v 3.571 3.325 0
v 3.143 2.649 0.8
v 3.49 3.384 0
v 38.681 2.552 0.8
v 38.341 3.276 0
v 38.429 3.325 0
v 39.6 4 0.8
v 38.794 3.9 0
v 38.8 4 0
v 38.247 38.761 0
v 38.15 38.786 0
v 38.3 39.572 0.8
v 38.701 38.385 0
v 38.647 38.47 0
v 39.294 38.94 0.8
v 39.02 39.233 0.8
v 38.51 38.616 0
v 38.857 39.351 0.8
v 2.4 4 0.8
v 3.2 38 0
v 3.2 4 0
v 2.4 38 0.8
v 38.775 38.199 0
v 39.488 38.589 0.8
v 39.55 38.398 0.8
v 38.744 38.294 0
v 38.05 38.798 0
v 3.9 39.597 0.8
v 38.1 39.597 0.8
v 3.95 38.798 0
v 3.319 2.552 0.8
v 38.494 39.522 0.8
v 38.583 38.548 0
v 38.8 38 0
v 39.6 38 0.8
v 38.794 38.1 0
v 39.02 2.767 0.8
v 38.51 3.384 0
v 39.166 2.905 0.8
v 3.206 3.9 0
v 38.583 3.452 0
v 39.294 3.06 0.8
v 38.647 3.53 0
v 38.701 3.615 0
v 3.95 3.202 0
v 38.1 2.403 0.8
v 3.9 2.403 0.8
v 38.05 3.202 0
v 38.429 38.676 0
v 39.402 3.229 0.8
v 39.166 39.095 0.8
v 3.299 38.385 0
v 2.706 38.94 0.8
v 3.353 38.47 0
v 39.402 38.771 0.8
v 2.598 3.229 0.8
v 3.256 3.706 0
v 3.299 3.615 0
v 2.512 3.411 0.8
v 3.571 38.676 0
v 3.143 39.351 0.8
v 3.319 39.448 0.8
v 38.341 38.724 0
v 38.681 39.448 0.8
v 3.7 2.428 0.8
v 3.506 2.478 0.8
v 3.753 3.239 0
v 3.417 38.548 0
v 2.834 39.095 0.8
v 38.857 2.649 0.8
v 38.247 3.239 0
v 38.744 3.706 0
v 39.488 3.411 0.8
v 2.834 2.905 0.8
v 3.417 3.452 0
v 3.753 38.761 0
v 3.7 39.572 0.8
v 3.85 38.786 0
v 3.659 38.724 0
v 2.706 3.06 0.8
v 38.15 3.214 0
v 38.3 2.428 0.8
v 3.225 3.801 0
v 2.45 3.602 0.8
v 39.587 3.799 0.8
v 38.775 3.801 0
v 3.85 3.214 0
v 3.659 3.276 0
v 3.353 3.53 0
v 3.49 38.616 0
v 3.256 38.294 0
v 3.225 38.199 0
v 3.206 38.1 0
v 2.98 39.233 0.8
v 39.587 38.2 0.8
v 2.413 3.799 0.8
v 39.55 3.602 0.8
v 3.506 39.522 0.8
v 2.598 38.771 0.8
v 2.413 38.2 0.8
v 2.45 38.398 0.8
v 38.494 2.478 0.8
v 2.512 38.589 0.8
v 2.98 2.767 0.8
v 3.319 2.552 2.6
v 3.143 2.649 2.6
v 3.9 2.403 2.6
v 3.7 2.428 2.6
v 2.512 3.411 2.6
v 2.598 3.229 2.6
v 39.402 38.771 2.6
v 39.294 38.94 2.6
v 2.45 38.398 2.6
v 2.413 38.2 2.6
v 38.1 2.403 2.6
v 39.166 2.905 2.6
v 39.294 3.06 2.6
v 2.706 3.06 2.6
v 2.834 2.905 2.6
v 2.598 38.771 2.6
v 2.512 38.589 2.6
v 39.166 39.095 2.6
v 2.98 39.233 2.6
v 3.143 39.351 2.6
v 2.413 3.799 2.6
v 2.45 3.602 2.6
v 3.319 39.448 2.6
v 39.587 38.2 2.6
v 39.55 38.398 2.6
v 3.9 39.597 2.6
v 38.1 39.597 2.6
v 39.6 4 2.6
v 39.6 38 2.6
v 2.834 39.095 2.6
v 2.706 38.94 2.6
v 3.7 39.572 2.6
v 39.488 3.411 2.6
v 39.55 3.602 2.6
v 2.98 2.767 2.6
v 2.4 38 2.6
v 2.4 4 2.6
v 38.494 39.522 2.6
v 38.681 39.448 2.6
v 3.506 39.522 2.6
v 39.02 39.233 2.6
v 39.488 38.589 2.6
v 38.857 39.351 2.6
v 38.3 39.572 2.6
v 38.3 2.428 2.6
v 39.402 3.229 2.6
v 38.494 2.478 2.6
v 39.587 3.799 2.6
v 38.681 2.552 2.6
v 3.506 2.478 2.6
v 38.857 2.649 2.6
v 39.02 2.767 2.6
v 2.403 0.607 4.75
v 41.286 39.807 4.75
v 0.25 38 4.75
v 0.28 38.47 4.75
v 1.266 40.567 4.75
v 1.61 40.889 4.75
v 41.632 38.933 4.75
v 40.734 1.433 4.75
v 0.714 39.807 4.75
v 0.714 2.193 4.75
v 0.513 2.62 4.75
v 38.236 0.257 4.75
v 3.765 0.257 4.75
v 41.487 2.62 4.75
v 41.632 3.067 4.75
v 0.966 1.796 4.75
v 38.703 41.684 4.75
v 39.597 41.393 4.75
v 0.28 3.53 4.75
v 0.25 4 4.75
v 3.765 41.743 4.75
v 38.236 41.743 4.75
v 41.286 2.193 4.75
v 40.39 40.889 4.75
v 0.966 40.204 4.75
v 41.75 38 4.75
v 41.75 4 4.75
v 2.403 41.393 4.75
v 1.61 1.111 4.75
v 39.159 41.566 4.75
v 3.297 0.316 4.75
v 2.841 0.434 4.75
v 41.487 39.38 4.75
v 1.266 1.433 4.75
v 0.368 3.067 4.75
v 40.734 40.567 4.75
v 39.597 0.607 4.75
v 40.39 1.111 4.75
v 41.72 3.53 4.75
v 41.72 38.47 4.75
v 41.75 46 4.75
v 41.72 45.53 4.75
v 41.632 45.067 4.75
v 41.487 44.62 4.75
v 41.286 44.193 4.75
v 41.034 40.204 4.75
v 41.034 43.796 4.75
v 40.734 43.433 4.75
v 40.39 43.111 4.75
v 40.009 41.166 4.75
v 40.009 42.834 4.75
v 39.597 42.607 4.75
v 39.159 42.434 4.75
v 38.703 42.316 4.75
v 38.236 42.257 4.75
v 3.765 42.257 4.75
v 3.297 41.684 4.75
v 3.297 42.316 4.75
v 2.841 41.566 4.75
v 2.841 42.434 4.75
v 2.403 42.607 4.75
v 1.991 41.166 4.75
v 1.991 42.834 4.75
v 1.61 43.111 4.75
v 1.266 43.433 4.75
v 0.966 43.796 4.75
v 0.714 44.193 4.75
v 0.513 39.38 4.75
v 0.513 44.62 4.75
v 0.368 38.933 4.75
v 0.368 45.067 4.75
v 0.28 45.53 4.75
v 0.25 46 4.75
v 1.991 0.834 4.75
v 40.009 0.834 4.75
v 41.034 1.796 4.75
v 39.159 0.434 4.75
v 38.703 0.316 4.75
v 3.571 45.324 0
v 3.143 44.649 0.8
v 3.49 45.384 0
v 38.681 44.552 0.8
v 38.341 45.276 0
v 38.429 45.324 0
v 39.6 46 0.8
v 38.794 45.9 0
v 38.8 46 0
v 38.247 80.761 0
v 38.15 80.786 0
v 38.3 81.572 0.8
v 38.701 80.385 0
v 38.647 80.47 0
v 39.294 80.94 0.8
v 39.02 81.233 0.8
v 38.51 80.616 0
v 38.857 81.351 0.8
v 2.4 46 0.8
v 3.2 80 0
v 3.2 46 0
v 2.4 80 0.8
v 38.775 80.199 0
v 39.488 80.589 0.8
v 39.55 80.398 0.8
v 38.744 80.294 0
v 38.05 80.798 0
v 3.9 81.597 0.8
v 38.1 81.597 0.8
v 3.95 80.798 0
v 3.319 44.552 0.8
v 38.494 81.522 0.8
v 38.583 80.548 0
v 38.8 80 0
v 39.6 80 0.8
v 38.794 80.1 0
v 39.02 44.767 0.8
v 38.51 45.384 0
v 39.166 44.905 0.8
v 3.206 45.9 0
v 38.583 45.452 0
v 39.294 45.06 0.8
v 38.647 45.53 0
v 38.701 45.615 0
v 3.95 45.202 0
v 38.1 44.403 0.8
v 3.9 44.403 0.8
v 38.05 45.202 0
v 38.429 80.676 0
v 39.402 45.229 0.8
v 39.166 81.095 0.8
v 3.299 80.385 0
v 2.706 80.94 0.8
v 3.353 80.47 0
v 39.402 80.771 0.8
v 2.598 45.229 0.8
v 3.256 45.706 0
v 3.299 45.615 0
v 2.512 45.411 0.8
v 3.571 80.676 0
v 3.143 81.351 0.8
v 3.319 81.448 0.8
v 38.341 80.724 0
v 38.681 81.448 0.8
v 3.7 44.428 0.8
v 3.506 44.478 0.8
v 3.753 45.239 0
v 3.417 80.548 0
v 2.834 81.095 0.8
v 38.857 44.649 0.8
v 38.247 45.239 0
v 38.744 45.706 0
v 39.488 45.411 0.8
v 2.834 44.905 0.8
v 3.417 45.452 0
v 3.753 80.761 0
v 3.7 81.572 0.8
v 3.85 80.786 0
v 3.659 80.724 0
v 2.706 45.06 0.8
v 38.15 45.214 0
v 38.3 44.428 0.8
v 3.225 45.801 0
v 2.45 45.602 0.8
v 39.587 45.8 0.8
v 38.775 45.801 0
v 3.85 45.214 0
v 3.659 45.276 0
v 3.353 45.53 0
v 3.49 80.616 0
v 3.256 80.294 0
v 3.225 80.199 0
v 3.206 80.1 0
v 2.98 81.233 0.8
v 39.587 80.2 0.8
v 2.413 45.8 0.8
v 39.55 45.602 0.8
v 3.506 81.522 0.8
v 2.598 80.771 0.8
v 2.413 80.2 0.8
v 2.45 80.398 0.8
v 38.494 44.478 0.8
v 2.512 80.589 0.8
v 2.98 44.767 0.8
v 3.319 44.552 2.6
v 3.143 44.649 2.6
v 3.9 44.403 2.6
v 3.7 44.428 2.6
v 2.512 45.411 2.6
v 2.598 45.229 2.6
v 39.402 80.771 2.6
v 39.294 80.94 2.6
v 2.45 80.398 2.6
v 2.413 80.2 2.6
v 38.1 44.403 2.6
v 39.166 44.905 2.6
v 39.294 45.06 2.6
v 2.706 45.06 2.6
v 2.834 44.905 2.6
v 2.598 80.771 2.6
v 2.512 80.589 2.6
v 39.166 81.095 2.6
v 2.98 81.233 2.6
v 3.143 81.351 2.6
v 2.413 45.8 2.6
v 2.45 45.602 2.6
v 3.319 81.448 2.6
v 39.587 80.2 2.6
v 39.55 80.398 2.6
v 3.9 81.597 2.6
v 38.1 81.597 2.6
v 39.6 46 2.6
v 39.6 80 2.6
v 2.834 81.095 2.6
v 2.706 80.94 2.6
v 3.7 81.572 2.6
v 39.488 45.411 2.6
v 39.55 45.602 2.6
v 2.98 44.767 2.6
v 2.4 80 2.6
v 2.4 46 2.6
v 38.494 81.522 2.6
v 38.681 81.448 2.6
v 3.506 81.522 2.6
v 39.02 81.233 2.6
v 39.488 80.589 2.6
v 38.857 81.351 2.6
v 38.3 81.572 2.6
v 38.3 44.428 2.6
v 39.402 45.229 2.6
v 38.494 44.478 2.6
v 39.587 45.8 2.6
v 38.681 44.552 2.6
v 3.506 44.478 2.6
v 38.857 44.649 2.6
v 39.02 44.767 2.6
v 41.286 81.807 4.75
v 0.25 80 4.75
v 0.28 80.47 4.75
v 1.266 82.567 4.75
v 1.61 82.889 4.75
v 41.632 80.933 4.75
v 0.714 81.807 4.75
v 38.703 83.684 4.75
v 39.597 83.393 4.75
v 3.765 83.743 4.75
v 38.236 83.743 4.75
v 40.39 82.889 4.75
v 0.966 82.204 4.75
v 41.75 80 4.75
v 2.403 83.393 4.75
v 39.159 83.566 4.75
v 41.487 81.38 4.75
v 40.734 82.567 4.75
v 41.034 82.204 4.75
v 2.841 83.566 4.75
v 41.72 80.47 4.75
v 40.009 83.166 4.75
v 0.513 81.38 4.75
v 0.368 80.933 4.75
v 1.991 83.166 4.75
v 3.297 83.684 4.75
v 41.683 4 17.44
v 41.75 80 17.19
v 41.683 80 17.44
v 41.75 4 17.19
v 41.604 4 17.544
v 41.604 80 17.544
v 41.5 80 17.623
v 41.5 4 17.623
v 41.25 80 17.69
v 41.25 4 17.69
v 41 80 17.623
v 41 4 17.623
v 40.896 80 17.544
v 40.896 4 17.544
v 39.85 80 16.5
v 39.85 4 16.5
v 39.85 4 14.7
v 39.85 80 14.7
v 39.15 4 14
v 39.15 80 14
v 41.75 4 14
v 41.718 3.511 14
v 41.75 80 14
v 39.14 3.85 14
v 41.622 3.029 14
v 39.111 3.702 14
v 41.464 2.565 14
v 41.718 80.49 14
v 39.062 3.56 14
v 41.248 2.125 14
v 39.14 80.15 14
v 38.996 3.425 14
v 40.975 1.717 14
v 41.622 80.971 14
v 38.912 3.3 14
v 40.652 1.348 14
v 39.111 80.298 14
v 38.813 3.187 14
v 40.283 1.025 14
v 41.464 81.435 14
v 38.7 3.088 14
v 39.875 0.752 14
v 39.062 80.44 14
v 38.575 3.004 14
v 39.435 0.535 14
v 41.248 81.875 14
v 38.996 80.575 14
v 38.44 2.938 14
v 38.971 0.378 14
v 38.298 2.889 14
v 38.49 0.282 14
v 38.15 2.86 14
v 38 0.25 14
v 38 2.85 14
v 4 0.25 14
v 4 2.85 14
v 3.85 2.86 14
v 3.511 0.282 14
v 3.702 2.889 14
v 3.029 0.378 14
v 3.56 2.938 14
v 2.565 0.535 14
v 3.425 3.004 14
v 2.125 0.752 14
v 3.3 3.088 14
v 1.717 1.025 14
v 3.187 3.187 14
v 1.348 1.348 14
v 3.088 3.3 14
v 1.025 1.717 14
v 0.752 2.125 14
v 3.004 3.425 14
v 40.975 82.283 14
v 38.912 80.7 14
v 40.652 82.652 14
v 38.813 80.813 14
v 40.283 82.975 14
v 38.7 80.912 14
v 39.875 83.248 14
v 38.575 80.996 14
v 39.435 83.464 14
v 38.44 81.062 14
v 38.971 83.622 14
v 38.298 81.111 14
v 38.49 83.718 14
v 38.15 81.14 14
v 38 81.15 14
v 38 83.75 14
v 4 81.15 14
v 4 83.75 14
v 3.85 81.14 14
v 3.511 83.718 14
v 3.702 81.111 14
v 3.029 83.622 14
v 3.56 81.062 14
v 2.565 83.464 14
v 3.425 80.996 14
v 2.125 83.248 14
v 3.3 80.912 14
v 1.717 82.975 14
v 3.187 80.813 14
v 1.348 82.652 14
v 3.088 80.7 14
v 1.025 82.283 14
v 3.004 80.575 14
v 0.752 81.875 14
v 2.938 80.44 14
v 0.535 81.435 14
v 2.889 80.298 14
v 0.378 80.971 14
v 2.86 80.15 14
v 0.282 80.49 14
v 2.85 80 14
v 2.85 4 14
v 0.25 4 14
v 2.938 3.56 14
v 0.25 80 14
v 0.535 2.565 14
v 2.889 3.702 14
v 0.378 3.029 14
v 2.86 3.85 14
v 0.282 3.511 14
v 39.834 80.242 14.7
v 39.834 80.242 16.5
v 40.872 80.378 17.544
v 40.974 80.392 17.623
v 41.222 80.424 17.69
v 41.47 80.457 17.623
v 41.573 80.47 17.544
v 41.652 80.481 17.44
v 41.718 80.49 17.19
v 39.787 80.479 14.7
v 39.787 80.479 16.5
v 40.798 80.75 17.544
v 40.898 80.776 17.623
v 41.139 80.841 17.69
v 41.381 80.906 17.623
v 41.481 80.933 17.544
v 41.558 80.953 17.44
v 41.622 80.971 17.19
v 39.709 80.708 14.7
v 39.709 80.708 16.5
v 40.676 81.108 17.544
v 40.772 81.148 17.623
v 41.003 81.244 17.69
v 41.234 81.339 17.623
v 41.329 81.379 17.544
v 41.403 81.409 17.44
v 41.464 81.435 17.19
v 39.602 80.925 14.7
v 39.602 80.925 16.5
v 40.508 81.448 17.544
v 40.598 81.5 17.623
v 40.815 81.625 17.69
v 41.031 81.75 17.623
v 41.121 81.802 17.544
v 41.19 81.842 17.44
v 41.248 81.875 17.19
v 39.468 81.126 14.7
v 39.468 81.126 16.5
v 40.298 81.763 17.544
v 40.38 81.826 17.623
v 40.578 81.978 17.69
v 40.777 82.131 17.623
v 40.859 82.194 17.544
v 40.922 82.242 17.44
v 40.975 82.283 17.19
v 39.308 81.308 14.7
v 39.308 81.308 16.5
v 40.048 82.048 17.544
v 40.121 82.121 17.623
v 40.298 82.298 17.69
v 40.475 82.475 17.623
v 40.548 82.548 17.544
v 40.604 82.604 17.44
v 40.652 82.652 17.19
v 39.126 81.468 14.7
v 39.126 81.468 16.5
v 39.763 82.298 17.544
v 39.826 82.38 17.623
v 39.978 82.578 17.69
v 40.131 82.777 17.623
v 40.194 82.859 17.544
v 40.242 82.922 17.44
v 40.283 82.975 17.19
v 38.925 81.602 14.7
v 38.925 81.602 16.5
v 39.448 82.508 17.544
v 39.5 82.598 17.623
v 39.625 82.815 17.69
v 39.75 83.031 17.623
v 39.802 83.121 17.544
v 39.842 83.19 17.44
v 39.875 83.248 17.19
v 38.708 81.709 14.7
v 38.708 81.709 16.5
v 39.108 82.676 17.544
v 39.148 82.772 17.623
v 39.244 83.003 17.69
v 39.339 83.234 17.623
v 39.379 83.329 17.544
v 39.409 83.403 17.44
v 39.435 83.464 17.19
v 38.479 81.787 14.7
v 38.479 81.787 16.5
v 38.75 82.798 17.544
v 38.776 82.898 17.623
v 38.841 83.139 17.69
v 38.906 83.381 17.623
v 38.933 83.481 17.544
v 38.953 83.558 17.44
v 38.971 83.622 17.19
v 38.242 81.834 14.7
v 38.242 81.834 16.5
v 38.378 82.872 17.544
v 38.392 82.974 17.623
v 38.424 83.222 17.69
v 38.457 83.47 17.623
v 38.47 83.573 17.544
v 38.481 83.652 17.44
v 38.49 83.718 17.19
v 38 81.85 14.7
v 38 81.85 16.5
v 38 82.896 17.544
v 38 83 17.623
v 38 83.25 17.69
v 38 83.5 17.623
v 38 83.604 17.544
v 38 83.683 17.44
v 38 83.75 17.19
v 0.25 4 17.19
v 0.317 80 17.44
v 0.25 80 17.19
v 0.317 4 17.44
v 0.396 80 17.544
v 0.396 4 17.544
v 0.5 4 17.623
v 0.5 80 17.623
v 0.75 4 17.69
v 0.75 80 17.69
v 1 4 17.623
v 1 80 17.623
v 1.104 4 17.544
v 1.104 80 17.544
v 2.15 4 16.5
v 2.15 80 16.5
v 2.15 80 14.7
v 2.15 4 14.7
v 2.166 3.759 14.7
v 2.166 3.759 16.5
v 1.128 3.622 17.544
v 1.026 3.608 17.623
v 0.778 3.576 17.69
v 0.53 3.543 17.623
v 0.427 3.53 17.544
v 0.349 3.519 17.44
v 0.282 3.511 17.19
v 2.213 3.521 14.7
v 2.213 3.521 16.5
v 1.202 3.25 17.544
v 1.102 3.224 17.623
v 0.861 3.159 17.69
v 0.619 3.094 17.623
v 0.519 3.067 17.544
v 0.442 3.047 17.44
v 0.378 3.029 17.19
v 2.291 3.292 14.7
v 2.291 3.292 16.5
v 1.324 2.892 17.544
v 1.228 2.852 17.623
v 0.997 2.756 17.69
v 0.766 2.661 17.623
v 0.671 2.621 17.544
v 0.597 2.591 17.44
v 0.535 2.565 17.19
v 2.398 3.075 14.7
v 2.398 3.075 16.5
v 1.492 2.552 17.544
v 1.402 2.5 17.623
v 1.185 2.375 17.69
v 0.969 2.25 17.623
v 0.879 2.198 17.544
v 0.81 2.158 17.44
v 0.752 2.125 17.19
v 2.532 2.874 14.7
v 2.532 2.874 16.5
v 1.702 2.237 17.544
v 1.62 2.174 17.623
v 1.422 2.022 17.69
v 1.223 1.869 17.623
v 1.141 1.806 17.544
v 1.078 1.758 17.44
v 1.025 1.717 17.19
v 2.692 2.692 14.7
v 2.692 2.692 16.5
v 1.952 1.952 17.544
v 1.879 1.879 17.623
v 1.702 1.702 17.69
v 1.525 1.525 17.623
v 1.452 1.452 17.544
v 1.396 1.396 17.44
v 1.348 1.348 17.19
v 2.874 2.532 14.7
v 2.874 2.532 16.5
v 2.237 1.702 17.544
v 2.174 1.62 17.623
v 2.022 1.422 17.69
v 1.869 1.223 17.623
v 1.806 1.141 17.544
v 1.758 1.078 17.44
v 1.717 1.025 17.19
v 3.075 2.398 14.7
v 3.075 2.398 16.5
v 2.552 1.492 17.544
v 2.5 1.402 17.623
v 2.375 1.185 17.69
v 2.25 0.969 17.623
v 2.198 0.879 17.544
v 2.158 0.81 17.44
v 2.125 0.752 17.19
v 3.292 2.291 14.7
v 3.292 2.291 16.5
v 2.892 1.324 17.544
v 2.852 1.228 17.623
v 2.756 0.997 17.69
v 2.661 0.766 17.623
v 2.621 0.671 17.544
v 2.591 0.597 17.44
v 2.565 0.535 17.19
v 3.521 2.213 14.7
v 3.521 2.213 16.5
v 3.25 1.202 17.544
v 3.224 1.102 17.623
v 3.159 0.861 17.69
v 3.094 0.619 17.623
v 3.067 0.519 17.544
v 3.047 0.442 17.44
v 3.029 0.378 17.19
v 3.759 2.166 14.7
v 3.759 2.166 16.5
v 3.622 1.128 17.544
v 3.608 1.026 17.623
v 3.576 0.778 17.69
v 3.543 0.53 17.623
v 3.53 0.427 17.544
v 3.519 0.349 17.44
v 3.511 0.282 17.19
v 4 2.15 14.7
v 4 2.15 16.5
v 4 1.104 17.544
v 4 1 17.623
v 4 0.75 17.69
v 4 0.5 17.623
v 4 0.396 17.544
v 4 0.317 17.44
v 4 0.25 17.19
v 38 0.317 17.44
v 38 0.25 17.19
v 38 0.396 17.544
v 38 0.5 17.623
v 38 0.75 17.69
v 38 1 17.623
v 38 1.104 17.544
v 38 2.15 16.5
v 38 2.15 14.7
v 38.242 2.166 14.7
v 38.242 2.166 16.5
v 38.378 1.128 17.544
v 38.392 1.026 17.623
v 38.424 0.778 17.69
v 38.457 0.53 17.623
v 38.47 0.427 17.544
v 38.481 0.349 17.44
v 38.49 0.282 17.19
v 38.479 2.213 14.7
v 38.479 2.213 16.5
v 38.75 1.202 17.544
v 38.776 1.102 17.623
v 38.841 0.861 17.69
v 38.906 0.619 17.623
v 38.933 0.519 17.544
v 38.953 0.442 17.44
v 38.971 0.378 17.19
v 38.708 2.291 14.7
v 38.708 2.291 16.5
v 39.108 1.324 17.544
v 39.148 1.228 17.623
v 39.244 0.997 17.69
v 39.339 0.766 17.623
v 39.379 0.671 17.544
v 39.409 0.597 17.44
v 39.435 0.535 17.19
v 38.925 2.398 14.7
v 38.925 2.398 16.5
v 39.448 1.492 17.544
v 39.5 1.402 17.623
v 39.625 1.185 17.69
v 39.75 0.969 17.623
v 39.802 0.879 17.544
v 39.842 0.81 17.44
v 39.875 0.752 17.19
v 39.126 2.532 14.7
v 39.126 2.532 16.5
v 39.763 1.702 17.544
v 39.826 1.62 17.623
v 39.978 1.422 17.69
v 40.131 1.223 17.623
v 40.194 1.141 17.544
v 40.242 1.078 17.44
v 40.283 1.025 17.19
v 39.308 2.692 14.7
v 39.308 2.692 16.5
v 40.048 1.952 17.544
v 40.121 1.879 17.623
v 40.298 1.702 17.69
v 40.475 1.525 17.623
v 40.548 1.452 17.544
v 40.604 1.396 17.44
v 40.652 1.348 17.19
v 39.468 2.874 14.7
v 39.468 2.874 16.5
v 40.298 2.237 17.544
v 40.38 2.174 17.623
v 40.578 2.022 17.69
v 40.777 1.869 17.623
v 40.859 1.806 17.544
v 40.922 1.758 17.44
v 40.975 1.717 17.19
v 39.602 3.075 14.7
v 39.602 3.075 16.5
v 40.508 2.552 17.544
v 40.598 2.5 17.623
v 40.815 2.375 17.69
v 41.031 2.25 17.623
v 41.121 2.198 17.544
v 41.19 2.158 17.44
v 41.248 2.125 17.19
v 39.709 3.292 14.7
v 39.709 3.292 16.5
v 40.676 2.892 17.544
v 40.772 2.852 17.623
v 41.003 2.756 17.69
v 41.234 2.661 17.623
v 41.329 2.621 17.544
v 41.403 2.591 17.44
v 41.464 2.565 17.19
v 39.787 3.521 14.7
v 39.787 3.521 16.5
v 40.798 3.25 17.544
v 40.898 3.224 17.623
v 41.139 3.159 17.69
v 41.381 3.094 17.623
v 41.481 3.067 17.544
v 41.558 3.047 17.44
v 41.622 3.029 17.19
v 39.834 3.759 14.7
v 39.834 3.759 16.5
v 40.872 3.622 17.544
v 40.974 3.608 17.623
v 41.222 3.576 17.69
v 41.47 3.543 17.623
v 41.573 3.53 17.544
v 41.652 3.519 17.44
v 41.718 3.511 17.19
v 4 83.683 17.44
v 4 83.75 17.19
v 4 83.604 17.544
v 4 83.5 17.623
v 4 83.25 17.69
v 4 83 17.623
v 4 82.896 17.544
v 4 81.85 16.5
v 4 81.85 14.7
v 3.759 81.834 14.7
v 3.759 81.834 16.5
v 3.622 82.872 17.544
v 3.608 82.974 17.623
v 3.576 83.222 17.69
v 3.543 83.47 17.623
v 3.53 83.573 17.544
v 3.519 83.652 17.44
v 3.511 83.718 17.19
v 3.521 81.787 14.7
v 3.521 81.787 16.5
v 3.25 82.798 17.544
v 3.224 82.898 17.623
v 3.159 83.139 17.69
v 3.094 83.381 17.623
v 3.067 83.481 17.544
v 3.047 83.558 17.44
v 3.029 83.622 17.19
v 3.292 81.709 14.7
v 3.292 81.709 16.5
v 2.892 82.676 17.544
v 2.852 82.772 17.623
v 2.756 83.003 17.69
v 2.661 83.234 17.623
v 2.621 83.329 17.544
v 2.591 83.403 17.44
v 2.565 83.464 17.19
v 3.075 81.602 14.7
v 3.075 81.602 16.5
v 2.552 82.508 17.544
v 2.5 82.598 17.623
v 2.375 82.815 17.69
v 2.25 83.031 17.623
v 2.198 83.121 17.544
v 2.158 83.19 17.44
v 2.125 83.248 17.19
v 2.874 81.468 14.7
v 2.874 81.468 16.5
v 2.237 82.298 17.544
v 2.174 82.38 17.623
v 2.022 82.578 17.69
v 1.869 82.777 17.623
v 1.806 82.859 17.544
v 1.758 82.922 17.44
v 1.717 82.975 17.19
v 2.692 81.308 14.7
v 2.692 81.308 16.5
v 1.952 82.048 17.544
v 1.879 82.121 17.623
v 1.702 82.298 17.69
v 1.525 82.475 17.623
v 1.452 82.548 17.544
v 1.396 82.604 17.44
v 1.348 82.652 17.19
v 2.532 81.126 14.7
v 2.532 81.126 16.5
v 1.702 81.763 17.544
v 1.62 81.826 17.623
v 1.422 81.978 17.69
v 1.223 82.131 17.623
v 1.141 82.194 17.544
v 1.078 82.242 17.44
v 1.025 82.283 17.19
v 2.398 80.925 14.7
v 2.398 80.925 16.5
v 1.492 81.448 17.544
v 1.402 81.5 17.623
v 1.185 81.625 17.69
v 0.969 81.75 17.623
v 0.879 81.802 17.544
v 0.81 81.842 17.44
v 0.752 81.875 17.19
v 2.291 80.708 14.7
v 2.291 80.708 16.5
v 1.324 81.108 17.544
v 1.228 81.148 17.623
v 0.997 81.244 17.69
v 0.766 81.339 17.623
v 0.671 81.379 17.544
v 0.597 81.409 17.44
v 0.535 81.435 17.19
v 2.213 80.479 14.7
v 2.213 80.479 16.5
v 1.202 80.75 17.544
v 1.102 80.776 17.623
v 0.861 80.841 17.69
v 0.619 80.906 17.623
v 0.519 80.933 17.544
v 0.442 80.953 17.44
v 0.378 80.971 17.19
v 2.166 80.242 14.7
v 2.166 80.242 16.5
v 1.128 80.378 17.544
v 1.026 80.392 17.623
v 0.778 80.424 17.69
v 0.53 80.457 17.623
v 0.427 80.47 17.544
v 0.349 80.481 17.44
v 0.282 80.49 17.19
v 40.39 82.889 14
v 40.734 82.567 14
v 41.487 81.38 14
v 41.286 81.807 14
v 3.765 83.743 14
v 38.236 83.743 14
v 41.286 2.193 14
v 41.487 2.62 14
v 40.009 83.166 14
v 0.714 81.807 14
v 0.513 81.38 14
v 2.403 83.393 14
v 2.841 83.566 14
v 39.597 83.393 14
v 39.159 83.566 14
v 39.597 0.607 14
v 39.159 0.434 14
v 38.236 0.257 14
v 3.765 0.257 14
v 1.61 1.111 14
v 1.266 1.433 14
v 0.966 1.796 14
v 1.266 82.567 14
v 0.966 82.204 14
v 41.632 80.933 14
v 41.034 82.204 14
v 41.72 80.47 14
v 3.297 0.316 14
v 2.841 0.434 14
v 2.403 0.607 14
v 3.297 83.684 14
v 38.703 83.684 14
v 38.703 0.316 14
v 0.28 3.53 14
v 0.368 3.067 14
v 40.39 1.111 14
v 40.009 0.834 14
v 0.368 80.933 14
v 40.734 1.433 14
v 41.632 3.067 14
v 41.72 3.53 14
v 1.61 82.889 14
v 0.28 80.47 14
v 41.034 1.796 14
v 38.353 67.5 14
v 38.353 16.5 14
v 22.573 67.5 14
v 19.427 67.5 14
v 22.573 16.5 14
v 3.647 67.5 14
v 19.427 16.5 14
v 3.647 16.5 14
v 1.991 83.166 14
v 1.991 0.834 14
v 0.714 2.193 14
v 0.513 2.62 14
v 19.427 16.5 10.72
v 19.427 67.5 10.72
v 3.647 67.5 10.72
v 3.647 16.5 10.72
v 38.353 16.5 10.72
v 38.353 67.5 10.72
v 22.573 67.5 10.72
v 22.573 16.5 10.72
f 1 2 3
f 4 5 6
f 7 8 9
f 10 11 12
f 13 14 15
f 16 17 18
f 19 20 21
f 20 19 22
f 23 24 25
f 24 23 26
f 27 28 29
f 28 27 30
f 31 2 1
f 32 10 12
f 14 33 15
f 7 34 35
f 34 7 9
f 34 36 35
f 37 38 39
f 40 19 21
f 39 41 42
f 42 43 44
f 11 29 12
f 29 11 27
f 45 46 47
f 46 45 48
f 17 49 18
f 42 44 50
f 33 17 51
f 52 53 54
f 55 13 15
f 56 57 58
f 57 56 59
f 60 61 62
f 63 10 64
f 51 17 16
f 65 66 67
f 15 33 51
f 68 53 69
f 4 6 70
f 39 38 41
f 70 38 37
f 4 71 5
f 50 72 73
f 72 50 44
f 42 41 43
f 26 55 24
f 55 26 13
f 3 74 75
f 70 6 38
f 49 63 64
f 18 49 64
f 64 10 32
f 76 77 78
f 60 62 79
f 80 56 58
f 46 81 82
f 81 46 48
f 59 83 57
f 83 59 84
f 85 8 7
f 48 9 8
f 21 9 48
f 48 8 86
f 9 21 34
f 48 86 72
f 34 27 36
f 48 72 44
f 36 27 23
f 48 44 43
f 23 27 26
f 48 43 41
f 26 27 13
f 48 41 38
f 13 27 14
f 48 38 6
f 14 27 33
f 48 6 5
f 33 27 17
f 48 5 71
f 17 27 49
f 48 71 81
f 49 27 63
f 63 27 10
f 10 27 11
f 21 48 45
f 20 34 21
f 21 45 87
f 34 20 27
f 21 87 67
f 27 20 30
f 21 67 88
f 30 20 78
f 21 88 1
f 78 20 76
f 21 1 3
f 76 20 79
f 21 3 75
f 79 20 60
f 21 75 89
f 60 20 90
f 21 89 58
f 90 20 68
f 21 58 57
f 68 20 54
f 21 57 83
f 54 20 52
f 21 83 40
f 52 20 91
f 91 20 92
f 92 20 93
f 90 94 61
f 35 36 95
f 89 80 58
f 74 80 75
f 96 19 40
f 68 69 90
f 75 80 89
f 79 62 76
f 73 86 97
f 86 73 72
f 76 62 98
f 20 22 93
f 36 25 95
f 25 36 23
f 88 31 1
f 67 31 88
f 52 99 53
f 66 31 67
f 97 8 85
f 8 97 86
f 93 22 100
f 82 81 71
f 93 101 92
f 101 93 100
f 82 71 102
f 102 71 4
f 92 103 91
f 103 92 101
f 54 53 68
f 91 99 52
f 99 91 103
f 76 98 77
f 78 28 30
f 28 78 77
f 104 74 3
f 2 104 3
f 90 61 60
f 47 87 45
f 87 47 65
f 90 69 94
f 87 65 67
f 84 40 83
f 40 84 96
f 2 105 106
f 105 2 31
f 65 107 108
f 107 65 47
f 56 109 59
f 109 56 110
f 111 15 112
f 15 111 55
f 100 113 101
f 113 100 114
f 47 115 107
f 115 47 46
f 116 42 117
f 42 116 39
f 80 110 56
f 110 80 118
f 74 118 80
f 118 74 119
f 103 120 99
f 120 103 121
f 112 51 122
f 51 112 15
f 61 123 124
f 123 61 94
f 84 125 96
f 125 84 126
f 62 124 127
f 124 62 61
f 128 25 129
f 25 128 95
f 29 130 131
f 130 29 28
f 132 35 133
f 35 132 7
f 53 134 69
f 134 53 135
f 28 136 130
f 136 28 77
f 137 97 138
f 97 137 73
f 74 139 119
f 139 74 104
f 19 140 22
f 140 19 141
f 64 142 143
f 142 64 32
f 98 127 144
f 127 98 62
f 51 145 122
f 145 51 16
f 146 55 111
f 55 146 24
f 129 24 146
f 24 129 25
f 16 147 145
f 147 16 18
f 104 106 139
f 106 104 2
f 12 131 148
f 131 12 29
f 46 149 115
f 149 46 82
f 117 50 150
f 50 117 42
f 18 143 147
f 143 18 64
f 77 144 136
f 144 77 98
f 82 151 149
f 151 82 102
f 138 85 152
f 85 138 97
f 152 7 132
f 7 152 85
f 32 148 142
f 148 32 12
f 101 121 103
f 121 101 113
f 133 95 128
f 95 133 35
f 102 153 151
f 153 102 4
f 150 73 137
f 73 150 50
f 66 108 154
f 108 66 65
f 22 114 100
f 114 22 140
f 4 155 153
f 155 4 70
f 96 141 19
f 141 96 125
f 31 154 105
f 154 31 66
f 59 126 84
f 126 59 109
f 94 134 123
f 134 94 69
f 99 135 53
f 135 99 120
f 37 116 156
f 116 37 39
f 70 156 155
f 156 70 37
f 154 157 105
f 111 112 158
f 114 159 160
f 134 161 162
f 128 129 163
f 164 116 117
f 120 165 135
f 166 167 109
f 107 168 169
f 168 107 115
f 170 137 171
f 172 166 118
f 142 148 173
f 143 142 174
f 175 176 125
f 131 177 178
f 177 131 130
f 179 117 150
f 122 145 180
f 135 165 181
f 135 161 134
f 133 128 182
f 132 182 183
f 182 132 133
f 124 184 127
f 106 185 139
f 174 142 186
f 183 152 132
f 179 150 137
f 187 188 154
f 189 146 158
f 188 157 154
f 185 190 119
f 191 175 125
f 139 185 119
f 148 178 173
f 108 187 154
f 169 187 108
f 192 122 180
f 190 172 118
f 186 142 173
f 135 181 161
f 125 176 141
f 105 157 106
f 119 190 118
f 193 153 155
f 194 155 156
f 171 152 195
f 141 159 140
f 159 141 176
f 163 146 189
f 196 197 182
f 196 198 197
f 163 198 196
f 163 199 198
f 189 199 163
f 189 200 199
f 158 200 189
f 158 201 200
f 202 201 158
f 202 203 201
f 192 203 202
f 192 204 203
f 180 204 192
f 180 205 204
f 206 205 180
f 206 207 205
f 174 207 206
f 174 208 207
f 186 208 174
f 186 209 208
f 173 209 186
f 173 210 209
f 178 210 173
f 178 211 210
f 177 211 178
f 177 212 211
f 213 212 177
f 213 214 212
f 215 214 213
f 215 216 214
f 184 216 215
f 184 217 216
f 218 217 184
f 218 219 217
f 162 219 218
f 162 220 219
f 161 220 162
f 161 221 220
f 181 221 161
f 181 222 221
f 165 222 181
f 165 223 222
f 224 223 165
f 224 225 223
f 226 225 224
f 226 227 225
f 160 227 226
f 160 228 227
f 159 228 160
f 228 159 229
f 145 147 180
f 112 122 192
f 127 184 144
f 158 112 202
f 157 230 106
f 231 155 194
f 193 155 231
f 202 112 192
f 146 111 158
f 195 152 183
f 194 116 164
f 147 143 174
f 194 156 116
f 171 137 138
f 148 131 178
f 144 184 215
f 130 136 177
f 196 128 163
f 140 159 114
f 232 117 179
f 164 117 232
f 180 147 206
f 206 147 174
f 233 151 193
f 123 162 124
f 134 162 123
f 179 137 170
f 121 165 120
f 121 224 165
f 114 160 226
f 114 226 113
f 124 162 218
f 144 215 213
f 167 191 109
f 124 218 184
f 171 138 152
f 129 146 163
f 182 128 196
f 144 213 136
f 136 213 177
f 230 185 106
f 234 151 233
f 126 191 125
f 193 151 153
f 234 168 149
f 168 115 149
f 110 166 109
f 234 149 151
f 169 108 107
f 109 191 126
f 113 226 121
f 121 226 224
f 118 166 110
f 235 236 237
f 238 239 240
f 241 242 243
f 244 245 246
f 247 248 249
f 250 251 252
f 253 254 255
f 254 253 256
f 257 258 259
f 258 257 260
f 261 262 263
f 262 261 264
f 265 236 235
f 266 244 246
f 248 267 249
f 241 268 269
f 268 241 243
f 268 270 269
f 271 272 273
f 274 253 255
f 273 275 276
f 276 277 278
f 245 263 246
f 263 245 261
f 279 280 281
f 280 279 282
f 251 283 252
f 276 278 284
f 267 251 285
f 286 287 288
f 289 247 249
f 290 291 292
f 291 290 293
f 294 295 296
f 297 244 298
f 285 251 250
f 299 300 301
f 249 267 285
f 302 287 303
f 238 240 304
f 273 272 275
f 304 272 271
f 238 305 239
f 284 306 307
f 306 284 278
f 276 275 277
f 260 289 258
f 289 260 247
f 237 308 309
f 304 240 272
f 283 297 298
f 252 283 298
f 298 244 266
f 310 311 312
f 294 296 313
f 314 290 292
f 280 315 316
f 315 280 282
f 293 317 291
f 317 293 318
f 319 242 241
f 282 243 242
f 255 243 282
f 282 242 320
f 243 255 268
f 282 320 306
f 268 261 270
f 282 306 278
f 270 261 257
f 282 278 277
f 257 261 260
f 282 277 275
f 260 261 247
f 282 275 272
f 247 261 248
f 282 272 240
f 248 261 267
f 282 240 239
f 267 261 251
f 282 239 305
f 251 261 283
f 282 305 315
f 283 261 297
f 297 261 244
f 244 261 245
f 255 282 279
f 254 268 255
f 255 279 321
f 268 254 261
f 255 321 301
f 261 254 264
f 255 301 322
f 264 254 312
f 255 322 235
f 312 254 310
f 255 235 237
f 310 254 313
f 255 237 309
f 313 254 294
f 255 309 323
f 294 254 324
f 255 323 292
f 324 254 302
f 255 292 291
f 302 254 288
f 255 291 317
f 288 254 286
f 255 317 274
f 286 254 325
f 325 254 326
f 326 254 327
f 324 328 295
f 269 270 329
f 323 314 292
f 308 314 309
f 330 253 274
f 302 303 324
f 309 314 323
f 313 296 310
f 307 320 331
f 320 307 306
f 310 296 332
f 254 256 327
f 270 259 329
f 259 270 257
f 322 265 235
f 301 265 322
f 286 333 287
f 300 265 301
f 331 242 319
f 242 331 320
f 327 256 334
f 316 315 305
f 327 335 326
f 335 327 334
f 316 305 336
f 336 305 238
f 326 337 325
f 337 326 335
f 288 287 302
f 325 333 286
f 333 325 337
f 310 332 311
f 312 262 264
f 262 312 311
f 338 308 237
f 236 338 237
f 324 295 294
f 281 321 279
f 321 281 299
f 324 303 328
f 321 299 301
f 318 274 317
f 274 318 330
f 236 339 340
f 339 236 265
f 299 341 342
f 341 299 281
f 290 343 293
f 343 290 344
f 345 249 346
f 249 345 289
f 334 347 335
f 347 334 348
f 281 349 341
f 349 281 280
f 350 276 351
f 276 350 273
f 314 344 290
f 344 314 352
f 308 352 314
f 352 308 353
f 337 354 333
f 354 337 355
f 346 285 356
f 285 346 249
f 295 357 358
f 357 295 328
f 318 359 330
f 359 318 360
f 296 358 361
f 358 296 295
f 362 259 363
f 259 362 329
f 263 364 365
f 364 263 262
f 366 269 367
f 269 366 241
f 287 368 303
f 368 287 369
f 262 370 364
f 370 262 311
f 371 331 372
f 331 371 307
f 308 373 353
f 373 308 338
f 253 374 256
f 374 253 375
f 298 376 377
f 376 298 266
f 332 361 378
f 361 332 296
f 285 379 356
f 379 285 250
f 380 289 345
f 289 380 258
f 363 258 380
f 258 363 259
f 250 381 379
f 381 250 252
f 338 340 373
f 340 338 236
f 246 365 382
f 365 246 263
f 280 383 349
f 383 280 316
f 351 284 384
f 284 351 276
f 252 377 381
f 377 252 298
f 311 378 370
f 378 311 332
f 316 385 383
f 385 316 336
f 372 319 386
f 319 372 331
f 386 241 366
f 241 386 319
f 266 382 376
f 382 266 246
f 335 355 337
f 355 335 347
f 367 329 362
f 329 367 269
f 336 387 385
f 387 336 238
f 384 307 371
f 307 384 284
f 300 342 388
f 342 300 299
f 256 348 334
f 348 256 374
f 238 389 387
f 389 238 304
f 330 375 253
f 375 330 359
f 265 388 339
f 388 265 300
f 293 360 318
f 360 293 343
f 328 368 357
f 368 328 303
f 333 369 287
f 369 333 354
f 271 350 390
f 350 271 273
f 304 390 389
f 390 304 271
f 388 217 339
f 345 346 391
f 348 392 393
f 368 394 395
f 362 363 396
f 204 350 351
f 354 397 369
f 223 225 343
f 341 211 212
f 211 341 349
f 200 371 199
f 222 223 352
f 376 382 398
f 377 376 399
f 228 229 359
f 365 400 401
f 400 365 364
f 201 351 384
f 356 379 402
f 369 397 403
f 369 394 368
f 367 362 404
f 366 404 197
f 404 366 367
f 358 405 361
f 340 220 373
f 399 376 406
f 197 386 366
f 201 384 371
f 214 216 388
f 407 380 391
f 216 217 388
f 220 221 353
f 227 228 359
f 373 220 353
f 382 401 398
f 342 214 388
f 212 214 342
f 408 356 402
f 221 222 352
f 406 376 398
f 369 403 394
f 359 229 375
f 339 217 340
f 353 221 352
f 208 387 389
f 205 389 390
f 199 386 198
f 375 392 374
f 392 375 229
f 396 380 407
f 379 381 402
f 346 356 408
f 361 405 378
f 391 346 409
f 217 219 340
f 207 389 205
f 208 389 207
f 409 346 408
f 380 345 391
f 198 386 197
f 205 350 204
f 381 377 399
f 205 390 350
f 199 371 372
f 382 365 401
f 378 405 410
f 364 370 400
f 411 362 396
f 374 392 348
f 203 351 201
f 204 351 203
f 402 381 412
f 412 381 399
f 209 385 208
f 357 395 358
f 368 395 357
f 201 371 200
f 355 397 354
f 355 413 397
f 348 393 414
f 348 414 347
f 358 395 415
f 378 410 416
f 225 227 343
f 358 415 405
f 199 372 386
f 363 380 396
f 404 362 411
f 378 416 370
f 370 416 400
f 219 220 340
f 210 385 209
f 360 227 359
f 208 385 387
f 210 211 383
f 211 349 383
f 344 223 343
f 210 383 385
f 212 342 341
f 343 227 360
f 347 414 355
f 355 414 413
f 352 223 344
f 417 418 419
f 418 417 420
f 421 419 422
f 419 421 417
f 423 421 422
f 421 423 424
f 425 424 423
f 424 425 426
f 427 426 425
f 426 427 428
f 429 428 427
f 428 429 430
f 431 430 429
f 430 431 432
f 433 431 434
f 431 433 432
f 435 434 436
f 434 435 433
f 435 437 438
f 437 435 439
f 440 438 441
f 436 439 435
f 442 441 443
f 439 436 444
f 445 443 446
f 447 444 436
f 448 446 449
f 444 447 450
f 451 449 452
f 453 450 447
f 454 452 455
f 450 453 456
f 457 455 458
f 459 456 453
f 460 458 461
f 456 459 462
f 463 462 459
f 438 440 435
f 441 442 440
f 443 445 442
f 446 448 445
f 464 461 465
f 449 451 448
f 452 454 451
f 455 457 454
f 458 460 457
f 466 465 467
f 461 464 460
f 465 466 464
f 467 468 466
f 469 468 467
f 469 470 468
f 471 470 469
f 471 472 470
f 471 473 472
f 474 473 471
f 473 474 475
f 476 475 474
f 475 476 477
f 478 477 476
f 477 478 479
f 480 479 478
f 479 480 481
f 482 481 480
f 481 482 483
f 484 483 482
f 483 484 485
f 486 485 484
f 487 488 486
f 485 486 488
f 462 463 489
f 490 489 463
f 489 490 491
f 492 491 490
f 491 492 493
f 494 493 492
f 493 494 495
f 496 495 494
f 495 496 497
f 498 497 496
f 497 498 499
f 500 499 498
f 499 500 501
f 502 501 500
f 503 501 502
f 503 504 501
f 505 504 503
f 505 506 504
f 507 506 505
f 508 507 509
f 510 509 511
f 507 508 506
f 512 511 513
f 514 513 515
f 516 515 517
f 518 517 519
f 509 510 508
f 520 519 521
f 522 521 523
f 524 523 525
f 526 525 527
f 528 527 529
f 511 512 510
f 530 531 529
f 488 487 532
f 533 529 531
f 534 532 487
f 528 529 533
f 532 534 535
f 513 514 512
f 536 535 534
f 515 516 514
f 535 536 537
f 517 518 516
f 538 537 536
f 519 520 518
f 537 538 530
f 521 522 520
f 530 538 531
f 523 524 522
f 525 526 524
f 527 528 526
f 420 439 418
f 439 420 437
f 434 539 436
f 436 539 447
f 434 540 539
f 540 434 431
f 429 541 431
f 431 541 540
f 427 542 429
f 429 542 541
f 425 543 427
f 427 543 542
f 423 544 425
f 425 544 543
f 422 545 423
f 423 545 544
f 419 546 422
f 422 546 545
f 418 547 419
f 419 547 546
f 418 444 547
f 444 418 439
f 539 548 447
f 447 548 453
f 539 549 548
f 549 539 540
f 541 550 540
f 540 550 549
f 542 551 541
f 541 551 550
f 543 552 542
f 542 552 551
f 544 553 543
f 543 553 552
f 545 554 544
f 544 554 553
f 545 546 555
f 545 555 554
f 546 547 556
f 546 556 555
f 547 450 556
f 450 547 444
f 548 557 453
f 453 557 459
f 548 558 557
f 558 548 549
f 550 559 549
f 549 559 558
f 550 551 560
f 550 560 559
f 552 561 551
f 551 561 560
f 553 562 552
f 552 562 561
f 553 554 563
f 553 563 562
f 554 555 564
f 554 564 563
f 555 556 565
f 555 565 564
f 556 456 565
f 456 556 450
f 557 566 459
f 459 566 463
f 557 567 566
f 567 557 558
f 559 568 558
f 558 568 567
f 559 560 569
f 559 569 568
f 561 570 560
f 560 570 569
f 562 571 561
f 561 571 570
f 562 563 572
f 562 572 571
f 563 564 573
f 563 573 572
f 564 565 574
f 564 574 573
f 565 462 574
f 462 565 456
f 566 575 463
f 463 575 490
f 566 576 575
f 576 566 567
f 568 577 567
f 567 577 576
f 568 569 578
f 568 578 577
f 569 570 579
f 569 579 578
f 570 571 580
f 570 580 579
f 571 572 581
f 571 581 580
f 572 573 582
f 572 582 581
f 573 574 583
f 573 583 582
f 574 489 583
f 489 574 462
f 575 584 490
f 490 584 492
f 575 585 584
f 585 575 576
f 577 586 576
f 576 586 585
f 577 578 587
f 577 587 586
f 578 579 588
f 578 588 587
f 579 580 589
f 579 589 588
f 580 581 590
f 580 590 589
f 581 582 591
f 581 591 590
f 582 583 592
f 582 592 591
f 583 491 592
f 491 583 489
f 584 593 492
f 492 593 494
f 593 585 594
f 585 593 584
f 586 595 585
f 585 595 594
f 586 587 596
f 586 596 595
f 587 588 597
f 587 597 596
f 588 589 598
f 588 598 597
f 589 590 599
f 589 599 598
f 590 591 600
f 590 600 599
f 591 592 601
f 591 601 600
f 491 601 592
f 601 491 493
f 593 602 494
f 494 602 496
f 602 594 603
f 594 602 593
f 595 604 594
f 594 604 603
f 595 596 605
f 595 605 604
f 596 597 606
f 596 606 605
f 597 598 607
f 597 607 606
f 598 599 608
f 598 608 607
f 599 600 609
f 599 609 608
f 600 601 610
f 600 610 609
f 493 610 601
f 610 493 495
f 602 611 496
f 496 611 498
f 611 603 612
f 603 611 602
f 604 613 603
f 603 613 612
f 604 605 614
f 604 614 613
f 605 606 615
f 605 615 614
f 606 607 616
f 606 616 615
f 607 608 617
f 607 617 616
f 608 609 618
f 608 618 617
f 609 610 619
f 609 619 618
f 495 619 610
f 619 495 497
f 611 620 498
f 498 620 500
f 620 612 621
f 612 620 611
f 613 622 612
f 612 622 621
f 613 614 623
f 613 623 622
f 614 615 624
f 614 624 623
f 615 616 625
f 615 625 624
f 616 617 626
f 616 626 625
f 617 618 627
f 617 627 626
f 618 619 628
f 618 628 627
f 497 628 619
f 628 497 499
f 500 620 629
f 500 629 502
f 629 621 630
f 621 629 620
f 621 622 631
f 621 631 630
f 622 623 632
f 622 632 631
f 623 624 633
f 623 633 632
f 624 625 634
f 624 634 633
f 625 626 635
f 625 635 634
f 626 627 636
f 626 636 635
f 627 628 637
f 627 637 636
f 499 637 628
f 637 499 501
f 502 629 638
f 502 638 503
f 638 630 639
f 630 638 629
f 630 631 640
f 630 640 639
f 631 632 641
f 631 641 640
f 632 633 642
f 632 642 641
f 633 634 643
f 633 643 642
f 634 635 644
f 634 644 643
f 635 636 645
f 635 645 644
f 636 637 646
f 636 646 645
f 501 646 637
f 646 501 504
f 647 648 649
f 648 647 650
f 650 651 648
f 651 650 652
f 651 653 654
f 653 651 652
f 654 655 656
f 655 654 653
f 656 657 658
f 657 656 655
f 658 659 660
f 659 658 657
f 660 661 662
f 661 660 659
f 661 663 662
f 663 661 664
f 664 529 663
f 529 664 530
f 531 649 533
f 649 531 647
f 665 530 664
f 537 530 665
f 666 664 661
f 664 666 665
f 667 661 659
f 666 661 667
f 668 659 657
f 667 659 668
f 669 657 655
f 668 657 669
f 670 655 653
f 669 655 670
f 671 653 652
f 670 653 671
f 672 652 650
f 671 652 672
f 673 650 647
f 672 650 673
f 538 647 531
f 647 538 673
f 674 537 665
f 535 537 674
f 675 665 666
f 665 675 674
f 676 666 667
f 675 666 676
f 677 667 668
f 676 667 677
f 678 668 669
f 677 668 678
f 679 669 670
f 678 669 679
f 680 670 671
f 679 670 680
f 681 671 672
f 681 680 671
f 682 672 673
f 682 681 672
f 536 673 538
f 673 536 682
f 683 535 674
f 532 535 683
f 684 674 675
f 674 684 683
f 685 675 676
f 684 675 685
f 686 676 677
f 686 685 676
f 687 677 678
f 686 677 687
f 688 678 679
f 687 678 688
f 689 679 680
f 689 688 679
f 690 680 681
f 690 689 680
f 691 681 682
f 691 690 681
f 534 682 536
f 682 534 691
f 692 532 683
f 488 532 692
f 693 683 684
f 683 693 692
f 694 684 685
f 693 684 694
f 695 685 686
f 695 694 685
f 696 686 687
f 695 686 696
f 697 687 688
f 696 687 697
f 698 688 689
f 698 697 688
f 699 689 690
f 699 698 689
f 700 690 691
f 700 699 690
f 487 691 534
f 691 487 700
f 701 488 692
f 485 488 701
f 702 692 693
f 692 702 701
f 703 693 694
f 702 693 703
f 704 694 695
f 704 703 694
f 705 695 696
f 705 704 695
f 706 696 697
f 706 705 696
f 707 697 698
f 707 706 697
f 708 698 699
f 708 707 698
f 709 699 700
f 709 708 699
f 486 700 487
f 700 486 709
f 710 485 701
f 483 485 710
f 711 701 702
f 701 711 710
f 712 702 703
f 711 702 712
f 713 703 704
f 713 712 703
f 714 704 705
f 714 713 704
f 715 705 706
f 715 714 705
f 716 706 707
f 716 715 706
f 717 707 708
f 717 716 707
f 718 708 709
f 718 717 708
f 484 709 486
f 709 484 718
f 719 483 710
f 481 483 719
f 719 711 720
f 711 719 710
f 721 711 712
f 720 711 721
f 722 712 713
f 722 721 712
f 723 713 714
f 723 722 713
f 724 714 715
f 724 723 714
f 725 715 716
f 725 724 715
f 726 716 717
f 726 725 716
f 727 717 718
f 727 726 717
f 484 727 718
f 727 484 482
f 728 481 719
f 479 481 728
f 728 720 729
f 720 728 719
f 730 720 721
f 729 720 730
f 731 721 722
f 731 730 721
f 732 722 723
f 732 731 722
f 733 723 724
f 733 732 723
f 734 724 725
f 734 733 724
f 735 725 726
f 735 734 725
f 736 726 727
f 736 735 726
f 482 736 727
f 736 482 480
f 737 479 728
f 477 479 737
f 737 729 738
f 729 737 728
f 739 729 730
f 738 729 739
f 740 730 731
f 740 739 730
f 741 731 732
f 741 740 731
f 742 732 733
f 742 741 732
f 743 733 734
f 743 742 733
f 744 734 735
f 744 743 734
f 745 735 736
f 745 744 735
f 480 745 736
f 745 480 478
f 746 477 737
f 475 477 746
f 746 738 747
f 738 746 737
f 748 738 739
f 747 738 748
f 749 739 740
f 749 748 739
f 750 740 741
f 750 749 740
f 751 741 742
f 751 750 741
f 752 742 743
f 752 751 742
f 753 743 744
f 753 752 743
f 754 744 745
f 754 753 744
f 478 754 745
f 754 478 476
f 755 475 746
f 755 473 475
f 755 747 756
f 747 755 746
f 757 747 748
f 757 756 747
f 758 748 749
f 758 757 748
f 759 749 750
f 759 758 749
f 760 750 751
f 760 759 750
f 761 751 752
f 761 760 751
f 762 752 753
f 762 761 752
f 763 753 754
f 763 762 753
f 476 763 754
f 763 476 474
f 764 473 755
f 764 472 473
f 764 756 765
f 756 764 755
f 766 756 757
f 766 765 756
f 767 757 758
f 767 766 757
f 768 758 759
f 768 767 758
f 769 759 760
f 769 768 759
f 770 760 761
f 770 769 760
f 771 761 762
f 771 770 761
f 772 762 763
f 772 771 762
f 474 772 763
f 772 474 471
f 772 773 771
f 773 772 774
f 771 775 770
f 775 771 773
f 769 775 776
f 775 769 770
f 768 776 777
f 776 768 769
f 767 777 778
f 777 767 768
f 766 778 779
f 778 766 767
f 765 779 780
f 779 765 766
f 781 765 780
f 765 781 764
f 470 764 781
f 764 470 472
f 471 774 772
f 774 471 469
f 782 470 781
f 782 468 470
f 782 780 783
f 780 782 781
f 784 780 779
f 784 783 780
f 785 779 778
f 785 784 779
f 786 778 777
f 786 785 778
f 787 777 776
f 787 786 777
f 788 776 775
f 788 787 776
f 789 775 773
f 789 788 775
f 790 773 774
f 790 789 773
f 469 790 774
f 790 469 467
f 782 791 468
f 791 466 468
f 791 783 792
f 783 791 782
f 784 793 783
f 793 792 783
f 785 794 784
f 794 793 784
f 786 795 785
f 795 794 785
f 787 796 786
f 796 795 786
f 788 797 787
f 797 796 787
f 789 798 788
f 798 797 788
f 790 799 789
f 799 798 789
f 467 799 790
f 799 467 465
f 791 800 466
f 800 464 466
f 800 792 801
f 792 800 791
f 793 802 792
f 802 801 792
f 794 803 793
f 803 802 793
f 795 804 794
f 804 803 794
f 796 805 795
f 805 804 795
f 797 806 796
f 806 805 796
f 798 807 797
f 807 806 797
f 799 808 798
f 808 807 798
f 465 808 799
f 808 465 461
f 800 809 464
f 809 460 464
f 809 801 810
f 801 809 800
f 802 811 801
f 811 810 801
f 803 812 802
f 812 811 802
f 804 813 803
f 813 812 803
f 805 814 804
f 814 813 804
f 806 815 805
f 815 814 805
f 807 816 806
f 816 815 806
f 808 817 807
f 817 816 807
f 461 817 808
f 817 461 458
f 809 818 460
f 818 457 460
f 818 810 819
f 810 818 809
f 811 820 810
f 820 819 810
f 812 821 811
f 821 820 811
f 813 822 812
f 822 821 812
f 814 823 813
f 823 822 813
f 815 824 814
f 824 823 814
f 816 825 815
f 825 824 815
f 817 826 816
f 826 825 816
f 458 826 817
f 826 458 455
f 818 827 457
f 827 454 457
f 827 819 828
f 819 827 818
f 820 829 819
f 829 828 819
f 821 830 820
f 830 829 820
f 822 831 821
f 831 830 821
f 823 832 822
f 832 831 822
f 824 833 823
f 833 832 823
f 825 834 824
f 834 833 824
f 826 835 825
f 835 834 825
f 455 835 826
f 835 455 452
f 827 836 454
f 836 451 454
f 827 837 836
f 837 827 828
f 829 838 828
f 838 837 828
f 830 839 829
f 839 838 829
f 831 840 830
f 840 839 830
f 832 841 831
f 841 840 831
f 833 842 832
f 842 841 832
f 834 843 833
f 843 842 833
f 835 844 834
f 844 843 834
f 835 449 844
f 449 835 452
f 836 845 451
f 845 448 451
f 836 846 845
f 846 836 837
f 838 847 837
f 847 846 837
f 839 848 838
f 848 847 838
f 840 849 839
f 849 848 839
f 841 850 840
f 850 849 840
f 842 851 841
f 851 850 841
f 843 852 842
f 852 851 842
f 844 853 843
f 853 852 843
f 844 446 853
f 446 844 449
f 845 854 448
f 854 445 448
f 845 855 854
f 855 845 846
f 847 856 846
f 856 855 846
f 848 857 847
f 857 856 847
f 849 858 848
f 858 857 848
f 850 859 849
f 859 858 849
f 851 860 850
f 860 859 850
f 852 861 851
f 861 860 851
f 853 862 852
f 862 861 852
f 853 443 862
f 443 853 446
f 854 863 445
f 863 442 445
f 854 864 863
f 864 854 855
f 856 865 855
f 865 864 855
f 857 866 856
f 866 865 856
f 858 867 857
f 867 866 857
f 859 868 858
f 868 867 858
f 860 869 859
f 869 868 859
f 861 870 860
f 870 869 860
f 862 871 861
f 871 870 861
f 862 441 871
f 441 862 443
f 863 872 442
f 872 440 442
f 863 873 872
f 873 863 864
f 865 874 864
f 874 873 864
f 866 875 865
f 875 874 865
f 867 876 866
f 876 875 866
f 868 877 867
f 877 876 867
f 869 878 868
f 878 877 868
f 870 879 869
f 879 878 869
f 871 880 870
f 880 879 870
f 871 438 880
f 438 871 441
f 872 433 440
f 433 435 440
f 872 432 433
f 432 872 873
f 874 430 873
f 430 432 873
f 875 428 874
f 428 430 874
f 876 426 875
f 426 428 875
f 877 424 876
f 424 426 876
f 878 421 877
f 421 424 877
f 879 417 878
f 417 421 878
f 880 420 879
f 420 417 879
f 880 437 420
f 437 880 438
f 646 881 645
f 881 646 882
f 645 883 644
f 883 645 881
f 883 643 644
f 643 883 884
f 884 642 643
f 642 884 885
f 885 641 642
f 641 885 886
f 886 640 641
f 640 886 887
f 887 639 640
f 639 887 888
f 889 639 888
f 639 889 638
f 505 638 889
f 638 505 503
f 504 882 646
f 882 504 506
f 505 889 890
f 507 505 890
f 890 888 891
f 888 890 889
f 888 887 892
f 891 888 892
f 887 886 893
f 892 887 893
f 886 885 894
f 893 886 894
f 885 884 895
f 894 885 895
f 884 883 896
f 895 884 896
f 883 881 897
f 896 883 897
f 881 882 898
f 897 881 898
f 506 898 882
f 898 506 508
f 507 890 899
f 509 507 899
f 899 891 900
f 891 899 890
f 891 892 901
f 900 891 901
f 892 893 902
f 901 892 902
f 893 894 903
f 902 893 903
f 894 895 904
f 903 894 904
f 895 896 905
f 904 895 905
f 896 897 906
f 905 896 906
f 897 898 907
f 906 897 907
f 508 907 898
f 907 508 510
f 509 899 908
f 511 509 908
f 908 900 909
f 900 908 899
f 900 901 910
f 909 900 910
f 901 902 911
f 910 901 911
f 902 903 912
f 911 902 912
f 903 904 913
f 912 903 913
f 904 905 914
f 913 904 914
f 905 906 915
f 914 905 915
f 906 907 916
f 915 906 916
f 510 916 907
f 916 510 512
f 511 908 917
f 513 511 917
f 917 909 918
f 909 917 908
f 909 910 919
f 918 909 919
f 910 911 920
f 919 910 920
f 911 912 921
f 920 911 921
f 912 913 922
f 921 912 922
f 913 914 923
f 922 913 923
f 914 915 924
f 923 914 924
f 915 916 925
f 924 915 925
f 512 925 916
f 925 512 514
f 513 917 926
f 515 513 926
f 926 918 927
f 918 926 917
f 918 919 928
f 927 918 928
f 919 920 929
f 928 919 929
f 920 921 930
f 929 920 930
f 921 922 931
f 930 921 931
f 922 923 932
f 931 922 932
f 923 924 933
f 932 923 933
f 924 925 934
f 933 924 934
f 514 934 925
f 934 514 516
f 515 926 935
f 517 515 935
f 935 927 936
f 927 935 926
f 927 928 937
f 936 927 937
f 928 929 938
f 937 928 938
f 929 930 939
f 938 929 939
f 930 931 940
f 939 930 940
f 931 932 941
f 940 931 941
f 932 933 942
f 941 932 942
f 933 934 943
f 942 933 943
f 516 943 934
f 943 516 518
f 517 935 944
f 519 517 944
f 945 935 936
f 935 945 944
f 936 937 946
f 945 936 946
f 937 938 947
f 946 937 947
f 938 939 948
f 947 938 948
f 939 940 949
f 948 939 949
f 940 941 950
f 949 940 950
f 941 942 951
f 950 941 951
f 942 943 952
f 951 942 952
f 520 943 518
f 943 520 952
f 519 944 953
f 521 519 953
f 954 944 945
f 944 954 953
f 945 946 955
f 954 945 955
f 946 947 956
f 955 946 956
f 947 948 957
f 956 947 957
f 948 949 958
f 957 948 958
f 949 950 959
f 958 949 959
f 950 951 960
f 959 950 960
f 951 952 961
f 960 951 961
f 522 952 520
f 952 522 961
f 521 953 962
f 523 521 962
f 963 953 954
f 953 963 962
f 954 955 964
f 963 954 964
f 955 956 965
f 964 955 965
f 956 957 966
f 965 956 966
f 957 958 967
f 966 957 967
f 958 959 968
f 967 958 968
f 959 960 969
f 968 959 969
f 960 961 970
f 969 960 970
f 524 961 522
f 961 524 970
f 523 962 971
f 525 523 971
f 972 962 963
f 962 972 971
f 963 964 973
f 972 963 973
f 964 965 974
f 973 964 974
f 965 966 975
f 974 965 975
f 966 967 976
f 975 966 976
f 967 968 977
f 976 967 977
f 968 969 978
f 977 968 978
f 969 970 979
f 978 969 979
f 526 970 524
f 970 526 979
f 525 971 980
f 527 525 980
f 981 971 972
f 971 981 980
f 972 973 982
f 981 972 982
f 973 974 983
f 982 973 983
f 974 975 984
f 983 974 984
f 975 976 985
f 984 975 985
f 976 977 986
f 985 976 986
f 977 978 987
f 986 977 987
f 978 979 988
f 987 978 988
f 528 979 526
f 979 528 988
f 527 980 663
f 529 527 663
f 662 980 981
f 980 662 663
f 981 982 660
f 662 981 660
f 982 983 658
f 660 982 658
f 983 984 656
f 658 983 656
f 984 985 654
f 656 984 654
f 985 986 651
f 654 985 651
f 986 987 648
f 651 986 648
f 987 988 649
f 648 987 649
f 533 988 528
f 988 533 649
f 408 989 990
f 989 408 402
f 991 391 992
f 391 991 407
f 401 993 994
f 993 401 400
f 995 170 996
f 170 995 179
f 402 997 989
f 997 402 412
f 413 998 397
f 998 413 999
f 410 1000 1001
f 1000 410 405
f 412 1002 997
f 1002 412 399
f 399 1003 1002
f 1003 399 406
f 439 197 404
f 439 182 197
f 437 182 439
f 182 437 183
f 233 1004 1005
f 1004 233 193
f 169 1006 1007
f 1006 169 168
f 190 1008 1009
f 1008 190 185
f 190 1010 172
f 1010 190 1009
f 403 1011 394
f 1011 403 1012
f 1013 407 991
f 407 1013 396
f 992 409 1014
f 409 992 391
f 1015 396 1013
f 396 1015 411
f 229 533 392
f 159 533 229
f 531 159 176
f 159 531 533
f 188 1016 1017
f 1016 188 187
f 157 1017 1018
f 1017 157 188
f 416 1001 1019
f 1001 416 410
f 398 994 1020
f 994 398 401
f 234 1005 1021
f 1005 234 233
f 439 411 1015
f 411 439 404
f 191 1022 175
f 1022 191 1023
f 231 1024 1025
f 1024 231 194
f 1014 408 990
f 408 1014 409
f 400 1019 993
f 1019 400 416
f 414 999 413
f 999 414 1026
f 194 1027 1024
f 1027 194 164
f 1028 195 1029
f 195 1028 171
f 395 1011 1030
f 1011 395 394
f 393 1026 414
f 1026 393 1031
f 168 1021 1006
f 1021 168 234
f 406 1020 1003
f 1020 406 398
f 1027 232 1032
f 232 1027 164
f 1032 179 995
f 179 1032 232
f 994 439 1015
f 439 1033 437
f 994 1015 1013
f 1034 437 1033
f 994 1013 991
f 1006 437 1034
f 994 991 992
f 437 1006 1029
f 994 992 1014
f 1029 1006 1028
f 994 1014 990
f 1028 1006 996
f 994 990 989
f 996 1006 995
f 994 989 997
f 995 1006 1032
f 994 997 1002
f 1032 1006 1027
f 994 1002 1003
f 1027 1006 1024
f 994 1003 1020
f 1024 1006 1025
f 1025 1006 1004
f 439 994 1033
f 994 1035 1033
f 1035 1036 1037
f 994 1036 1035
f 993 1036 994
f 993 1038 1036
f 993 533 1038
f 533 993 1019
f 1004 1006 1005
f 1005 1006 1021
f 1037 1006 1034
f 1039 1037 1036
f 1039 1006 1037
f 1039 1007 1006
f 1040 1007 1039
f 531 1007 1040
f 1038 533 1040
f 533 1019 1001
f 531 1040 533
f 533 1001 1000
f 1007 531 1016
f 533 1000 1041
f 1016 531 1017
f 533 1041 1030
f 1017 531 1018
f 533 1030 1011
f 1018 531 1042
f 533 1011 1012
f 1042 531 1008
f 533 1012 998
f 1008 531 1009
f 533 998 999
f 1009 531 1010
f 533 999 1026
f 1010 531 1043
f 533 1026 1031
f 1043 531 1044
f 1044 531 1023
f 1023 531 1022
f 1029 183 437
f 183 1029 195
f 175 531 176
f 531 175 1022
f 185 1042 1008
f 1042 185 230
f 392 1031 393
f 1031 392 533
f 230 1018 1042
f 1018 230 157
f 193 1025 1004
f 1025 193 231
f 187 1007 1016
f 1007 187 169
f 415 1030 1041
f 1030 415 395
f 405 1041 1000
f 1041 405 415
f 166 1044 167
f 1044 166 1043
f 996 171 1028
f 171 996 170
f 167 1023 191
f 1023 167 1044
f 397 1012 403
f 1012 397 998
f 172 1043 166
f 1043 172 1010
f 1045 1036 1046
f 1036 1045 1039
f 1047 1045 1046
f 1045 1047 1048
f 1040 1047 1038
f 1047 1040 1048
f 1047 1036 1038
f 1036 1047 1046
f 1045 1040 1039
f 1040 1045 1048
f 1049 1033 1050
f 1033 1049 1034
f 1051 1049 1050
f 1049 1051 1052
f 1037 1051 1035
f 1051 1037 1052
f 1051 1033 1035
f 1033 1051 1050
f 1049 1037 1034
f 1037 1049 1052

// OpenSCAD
$fn = 50;

v_block_width  = 14.78;
v_block_length = 50;
v_block_height = 20.56;

module gridfinity_base(gridx, gridy, height, stacking_lip = true) {
    x_center_offset = (gridx * 42 - 0.5)/2.0 - 3.75;
    y_center_offset = (gridy * 42 - 0.5)/2.0 - 3.75;
    full_width_height = height * 7 - 2.15 - 1.8 - 0.8;
    lip_width = 2.6;
    outside_radius = 3.75;

    module cell_base() {
        module layer(z, height, bottom_radius, top_radius) {
            hull()
            for (x = [4.0, 42.0-4.0])
                for (y = [4.0, 42.0-4.0])
                    translate([x,y,z]) cylinder(h=height, r1=bottom_radius, r2=top_radius);
        }
        layer(z=0.0, height=0.8, bottom_radius=0.8, top_radius=1.6);
        layer(z=0.8, height=1.8, bottom_radius=1.6, top_radius=1.6);
        layer(z=2.6, height=2.15, bottom_radius=1.6, top_radius=3.75);
    }

    for (x = [0:gridx-1])
        for (y = [0:gridy-1])
            translate([x*42.0, y*42.0, 0])
                cell_base();

    hull()
    for (x = [4.0, gridx * 42.0 - 4.0])
        for (y = [4.0, gridy * 42.0 - 4.0])
            translate([x,y, 4.75]) cylinder(h=full_width_height, r=3.75);

    module lip_profile() {
        function roundover_at(angle) = let (
            radius = 0.5,
            x = outside_radius - radius,
            y = 3.69 - radius
        ) [ x + radius * sin(angle), y + radius * cos(angle) ];
        polygon(points=[
            [ outside_radius - lip_width  ,   0 ],
            [ outside_radius - 1.9        , 0.7 ],
            [ outside_radius - 1.9        , 0.7 + 1.8 ],
            for (angle = [-45, -30, 0, 30, 45, 90]) roundover_at(angle),
            [ outside_radius              ,   0 ],
            [ outside_radius - lip_width  ,   0 ]
        ]);
    }

    lip_inset = outside_radius + 0.25;

    module lip_side(grids) {
        rotate([90,0,0]) linear_extrude(grids*42.0 - 2 * lip_inset) lip_profile();
        rotate_extrude(angle=90) lip_profile();
    }

    if (stacking_lip) {
        translate([gridx*42.0 - lip_inset, gridy*42.0 - lip_inset, height*7]) lip_side(gridy);
        translate([lip_inset, lip_inset, height*7]) rotate([0,0,180]) lip_side(gridy);
        translate([gridx*42.0 - lip_inset, lip_inset, height*7]) rotate([0,0,-90]) lip_side(gridx);
        translate([lip_inset, gridy*42 - lip_inset, height*7]) rotate([0,0,90]) lip_side(gridx);
    }
}

module v_block_cutout() {
    cube([v_block_width+1, v_block_length+1, v_block_height], center=true);
}

module v_blocks_bin() {
    difference() {
        gridfinity_base(1, 2, 2);

        extra_space = 42 - 2*v_block_width;
        spacing = extra_space/3;

        translate([v_block_width/2 + spacing, 42, 3*7]) v_block_cutout();
        translate([v_block_width/2 + v_block_width + 2*spacing, 42, 3*7]) v_block_cutout();
    }
}

v_blocks_bin();
